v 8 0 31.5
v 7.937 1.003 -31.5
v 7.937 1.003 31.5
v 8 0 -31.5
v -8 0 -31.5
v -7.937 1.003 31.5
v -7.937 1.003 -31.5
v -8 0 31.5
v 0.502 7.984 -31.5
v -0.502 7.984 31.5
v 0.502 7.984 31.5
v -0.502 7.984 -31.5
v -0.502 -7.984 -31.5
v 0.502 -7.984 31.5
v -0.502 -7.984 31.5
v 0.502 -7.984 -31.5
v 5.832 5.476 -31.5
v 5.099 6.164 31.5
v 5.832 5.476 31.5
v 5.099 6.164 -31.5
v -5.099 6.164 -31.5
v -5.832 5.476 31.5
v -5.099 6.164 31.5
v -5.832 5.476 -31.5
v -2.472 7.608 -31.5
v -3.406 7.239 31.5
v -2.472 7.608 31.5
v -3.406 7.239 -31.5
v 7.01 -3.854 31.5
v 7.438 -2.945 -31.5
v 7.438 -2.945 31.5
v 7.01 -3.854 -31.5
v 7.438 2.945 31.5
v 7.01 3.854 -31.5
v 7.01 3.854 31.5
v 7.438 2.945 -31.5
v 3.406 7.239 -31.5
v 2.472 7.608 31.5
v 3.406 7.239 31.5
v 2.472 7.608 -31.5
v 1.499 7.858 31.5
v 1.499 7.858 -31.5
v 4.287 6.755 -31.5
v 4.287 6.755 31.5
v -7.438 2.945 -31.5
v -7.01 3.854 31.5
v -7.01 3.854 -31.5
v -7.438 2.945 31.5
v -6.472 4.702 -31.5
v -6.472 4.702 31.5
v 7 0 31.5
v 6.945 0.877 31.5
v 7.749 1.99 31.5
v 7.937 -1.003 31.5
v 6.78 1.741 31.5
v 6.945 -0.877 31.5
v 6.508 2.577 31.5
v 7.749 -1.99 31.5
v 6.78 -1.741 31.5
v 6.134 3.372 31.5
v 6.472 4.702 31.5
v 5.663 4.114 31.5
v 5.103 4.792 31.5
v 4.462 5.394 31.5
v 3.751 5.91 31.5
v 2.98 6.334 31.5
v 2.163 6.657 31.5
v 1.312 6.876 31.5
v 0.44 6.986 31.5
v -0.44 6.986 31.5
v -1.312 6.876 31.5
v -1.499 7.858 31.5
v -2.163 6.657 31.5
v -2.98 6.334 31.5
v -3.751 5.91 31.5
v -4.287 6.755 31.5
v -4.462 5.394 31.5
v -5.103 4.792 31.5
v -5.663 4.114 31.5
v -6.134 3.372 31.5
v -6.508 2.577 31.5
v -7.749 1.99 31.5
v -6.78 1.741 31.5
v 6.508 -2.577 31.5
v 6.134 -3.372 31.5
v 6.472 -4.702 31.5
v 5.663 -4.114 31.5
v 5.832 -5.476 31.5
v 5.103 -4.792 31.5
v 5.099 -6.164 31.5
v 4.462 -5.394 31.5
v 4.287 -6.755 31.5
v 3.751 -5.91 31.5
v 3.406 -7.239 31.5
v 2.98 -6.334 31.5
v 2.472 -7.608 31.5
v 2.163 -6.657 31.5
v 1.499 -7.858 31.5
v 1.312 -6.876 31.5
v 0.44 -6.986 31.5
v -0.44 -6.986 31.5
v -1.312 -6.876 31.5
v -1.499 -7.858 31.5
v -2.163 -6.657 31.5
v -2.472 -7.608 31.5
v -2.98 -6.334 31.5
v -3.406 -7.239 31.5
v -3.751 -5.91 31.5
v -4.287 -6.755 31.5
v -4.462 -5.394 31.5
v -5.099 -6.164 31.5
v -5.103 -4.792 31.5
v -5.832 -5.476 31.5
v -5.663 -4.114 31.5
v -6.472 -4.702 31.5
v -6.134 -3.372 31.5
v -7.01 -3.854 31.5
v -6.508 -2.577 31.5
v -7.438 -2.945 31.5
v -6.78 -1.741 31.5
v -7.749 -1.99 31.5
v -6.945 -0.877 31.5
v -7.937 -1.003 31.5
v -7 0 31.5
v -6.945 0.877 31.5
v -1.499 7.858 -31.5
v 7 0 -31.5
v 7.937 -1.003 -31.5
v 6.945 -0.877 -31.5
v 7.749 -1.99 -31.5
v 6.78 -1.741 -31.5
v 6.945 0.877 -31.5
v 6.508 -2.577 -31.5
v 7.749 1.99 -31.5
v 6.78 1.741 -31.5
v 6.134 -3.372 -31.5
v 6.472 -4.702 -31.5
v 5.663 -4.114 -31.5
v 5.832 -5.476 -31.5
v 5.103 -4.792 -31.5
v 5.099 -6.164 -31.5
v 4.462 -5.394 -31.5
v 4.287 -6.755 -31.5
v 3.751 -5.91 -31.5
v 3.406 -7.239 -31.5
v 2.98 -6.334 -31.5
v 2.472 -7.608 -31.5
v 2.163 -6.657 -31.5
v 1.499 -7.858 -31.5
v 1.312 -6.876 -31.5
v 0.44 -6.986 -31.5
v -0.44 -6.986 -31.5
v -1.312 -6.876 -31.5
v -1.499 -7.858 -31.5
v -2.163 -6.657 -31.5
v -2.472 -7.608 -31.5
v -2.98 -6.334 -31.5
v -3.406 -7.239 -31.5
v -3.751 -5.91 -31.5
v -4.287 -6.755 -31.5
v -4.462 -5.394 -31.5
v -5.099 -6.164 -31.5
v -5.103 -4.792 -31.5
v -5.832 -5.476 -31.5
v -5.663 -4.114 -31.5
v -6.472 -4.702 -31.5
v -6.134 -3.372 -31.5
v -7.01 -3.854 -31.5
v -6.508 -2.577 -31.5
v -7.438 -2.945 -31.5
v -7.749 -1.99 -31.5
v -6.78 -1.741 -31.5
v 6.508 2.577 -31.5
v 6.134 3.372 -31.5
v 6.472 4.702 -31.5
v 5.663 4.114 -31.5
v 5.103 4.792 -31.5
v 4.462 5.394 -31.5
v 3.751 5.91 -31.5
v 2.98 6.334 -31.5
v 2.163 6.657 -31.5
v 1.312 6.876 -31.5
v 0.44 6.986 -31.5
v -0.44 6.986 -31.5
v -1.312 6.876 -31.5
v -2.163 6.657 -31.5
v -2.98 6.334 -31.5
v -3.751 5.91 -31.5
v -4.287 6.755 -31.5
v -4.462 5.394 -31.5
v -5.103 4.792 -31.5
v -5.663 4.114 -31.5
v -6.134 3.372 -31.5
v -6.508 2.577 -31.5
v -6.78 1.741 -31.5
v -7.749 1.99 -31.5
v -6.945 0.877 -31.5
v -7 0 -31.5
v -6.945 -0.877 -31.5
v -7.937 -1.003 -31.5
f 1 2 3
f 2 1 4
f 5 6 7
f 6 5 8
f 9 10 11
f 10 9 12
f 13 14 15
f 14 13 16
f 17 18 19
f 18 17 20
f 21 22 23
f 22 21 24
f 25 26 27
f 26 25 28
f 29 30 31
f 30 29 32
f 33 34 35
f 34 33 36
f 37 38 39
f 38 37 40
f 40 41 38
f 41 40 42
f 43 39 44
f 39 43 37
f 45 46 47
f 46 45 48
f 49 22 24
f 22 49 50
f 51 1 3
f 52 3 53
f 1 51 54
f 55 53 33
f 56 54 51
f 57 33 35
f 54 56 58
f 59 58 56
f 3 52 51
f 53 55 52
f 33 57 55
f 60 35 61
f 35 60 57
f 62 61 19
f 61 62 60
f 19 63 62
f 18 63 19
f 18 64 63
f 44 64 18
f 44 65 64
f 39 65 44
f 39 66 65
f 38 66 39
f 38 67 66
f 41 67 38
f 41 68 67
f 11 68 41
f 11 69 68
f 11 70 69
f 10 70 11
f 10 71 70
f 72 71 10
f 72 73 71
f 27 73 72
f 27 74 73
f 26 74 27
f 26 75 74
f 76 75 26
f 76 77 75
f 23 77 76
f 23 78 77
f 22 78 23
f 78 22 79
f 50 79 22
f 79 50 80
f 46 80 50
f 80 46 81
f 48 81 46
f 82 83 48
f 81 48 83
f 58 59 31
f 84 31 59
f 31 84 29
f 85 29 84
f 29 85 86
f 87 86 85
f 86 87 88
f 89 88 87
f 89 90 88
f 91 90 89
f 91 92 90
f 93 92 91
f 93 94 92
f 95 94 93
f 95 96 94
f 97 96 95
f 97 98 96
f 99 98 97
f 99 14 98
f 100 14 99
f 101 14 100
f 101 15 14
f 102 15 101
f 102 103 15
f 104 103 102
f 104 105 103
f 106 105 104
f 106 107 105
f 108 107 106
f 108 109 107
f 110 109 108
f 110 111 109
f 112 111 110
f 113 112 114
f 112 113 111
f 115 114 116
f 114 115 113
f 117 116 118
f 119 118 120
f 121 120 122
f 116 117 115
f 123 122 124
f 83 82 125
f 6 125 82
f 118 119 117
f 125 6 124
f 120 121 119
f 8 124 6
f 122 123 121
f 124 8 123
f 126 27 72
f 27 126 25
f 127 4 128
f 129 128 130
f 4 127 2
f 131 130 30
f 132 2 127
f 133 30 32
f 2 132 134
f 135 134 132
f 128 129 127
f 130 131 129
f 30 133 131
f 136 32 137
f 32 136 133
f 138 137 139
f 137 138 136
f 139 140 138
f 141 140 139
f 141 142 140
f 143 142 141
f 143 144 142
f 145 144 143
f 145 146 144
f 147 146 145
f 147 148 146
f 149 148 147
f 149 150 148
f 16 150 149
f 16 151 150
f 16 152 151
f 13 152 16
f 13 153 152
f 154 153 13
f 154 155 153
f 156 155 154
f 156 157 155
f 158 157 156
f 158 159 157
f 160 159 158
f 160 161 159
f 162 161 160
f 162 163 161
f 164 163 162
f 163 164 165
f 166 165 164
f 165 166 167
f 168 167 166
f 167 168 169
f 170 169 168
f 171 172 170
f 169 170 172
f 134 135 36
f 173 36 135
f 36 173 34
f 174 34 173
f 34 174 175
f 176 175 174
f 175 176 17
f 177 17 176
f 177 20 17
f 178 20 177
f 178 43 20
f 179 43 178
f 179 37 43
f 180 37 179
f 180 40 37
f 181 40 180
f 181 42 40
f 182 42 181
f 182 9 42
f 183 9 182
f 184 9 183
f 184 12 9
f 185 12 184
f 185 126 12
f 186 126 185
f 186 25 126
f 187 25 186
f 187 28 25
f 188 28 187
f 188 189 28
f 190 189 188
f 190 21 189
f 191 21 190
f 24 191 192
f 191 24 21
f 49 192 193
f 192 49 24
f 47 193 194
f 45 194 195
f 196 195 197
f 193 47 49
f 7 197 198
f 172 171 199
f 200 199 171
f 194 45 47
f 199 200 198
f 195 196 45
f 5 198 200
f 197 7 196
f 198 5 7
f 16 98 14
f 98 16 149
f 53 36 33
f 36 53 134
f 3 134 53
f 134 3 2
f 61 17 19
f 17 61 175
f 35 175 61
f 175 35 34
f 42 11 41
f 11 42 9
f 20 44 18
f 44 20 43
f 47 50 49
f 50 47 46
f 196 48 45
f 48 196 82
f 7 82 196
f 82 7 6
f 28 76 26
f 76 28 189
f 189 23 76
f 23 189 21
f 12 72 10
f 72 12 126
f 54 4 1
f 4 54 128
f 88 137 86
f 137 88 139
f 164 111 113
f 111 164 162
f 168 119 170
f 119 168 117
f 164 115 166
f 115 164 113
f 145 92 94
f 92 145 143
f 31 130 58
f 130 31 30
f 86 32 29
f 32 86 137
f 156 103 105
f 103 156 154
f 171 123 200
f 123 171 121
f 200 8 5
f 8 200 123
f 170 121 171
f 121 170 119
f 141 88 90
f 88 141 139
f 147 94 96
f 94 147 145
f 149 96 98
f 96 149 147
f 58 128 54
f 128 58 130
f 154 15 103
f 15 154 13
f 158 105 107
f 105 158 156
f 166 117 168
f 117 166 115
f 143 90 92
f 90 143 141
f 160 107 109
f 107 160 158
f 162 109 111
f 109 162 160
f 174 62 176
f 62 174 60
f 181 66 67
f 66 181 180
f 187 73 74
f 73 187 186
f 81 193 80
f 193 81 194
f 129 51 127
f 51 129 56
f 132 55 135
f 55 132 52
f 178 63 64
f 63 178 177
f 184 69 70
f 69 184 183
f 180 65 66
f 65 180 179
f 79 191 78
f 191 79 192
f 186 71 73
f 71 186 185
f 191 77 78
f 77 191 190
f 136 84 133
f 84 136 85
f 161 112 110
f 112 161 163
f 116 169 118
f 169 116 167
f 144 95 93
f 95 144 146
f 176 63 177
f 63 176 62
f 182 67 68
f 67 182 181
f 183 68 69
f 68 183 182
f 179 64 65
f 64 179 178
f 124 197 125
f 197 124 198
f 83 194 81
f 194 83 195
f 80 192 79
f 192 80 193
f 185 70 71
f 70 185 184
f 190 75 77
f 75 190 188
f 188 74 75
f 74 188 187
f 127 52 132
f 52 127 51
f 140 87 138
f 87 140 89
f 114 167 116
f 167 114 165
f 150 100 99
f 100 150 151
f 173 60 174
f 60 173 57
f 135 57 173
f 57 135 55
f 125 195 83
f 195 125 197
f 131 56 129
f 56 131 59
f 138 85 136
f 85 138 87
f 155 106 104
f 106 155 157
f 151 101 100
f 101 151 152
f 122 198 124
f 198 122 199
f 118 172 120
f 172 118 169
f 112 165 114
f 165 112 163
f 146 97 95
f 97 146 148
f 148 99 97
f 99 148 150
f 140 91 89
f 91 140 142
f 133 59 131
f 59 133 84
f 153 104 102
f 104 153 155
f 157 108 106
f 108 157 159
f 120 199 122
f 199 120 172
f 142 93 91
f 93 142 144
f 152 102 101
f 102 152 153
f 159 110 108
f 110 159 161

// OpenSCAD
$fn = 50;


difference() {
	union() {
		translate(v = [0, 0, -31.5000000000]) {
			cylinder(h = 63, r = 8.0000000000);
		}
	}
	union() {
		translate(v = [0, 0, -100.0000000000]) {
			cylinder(h = 200, r = 7);
		}
	}
}
